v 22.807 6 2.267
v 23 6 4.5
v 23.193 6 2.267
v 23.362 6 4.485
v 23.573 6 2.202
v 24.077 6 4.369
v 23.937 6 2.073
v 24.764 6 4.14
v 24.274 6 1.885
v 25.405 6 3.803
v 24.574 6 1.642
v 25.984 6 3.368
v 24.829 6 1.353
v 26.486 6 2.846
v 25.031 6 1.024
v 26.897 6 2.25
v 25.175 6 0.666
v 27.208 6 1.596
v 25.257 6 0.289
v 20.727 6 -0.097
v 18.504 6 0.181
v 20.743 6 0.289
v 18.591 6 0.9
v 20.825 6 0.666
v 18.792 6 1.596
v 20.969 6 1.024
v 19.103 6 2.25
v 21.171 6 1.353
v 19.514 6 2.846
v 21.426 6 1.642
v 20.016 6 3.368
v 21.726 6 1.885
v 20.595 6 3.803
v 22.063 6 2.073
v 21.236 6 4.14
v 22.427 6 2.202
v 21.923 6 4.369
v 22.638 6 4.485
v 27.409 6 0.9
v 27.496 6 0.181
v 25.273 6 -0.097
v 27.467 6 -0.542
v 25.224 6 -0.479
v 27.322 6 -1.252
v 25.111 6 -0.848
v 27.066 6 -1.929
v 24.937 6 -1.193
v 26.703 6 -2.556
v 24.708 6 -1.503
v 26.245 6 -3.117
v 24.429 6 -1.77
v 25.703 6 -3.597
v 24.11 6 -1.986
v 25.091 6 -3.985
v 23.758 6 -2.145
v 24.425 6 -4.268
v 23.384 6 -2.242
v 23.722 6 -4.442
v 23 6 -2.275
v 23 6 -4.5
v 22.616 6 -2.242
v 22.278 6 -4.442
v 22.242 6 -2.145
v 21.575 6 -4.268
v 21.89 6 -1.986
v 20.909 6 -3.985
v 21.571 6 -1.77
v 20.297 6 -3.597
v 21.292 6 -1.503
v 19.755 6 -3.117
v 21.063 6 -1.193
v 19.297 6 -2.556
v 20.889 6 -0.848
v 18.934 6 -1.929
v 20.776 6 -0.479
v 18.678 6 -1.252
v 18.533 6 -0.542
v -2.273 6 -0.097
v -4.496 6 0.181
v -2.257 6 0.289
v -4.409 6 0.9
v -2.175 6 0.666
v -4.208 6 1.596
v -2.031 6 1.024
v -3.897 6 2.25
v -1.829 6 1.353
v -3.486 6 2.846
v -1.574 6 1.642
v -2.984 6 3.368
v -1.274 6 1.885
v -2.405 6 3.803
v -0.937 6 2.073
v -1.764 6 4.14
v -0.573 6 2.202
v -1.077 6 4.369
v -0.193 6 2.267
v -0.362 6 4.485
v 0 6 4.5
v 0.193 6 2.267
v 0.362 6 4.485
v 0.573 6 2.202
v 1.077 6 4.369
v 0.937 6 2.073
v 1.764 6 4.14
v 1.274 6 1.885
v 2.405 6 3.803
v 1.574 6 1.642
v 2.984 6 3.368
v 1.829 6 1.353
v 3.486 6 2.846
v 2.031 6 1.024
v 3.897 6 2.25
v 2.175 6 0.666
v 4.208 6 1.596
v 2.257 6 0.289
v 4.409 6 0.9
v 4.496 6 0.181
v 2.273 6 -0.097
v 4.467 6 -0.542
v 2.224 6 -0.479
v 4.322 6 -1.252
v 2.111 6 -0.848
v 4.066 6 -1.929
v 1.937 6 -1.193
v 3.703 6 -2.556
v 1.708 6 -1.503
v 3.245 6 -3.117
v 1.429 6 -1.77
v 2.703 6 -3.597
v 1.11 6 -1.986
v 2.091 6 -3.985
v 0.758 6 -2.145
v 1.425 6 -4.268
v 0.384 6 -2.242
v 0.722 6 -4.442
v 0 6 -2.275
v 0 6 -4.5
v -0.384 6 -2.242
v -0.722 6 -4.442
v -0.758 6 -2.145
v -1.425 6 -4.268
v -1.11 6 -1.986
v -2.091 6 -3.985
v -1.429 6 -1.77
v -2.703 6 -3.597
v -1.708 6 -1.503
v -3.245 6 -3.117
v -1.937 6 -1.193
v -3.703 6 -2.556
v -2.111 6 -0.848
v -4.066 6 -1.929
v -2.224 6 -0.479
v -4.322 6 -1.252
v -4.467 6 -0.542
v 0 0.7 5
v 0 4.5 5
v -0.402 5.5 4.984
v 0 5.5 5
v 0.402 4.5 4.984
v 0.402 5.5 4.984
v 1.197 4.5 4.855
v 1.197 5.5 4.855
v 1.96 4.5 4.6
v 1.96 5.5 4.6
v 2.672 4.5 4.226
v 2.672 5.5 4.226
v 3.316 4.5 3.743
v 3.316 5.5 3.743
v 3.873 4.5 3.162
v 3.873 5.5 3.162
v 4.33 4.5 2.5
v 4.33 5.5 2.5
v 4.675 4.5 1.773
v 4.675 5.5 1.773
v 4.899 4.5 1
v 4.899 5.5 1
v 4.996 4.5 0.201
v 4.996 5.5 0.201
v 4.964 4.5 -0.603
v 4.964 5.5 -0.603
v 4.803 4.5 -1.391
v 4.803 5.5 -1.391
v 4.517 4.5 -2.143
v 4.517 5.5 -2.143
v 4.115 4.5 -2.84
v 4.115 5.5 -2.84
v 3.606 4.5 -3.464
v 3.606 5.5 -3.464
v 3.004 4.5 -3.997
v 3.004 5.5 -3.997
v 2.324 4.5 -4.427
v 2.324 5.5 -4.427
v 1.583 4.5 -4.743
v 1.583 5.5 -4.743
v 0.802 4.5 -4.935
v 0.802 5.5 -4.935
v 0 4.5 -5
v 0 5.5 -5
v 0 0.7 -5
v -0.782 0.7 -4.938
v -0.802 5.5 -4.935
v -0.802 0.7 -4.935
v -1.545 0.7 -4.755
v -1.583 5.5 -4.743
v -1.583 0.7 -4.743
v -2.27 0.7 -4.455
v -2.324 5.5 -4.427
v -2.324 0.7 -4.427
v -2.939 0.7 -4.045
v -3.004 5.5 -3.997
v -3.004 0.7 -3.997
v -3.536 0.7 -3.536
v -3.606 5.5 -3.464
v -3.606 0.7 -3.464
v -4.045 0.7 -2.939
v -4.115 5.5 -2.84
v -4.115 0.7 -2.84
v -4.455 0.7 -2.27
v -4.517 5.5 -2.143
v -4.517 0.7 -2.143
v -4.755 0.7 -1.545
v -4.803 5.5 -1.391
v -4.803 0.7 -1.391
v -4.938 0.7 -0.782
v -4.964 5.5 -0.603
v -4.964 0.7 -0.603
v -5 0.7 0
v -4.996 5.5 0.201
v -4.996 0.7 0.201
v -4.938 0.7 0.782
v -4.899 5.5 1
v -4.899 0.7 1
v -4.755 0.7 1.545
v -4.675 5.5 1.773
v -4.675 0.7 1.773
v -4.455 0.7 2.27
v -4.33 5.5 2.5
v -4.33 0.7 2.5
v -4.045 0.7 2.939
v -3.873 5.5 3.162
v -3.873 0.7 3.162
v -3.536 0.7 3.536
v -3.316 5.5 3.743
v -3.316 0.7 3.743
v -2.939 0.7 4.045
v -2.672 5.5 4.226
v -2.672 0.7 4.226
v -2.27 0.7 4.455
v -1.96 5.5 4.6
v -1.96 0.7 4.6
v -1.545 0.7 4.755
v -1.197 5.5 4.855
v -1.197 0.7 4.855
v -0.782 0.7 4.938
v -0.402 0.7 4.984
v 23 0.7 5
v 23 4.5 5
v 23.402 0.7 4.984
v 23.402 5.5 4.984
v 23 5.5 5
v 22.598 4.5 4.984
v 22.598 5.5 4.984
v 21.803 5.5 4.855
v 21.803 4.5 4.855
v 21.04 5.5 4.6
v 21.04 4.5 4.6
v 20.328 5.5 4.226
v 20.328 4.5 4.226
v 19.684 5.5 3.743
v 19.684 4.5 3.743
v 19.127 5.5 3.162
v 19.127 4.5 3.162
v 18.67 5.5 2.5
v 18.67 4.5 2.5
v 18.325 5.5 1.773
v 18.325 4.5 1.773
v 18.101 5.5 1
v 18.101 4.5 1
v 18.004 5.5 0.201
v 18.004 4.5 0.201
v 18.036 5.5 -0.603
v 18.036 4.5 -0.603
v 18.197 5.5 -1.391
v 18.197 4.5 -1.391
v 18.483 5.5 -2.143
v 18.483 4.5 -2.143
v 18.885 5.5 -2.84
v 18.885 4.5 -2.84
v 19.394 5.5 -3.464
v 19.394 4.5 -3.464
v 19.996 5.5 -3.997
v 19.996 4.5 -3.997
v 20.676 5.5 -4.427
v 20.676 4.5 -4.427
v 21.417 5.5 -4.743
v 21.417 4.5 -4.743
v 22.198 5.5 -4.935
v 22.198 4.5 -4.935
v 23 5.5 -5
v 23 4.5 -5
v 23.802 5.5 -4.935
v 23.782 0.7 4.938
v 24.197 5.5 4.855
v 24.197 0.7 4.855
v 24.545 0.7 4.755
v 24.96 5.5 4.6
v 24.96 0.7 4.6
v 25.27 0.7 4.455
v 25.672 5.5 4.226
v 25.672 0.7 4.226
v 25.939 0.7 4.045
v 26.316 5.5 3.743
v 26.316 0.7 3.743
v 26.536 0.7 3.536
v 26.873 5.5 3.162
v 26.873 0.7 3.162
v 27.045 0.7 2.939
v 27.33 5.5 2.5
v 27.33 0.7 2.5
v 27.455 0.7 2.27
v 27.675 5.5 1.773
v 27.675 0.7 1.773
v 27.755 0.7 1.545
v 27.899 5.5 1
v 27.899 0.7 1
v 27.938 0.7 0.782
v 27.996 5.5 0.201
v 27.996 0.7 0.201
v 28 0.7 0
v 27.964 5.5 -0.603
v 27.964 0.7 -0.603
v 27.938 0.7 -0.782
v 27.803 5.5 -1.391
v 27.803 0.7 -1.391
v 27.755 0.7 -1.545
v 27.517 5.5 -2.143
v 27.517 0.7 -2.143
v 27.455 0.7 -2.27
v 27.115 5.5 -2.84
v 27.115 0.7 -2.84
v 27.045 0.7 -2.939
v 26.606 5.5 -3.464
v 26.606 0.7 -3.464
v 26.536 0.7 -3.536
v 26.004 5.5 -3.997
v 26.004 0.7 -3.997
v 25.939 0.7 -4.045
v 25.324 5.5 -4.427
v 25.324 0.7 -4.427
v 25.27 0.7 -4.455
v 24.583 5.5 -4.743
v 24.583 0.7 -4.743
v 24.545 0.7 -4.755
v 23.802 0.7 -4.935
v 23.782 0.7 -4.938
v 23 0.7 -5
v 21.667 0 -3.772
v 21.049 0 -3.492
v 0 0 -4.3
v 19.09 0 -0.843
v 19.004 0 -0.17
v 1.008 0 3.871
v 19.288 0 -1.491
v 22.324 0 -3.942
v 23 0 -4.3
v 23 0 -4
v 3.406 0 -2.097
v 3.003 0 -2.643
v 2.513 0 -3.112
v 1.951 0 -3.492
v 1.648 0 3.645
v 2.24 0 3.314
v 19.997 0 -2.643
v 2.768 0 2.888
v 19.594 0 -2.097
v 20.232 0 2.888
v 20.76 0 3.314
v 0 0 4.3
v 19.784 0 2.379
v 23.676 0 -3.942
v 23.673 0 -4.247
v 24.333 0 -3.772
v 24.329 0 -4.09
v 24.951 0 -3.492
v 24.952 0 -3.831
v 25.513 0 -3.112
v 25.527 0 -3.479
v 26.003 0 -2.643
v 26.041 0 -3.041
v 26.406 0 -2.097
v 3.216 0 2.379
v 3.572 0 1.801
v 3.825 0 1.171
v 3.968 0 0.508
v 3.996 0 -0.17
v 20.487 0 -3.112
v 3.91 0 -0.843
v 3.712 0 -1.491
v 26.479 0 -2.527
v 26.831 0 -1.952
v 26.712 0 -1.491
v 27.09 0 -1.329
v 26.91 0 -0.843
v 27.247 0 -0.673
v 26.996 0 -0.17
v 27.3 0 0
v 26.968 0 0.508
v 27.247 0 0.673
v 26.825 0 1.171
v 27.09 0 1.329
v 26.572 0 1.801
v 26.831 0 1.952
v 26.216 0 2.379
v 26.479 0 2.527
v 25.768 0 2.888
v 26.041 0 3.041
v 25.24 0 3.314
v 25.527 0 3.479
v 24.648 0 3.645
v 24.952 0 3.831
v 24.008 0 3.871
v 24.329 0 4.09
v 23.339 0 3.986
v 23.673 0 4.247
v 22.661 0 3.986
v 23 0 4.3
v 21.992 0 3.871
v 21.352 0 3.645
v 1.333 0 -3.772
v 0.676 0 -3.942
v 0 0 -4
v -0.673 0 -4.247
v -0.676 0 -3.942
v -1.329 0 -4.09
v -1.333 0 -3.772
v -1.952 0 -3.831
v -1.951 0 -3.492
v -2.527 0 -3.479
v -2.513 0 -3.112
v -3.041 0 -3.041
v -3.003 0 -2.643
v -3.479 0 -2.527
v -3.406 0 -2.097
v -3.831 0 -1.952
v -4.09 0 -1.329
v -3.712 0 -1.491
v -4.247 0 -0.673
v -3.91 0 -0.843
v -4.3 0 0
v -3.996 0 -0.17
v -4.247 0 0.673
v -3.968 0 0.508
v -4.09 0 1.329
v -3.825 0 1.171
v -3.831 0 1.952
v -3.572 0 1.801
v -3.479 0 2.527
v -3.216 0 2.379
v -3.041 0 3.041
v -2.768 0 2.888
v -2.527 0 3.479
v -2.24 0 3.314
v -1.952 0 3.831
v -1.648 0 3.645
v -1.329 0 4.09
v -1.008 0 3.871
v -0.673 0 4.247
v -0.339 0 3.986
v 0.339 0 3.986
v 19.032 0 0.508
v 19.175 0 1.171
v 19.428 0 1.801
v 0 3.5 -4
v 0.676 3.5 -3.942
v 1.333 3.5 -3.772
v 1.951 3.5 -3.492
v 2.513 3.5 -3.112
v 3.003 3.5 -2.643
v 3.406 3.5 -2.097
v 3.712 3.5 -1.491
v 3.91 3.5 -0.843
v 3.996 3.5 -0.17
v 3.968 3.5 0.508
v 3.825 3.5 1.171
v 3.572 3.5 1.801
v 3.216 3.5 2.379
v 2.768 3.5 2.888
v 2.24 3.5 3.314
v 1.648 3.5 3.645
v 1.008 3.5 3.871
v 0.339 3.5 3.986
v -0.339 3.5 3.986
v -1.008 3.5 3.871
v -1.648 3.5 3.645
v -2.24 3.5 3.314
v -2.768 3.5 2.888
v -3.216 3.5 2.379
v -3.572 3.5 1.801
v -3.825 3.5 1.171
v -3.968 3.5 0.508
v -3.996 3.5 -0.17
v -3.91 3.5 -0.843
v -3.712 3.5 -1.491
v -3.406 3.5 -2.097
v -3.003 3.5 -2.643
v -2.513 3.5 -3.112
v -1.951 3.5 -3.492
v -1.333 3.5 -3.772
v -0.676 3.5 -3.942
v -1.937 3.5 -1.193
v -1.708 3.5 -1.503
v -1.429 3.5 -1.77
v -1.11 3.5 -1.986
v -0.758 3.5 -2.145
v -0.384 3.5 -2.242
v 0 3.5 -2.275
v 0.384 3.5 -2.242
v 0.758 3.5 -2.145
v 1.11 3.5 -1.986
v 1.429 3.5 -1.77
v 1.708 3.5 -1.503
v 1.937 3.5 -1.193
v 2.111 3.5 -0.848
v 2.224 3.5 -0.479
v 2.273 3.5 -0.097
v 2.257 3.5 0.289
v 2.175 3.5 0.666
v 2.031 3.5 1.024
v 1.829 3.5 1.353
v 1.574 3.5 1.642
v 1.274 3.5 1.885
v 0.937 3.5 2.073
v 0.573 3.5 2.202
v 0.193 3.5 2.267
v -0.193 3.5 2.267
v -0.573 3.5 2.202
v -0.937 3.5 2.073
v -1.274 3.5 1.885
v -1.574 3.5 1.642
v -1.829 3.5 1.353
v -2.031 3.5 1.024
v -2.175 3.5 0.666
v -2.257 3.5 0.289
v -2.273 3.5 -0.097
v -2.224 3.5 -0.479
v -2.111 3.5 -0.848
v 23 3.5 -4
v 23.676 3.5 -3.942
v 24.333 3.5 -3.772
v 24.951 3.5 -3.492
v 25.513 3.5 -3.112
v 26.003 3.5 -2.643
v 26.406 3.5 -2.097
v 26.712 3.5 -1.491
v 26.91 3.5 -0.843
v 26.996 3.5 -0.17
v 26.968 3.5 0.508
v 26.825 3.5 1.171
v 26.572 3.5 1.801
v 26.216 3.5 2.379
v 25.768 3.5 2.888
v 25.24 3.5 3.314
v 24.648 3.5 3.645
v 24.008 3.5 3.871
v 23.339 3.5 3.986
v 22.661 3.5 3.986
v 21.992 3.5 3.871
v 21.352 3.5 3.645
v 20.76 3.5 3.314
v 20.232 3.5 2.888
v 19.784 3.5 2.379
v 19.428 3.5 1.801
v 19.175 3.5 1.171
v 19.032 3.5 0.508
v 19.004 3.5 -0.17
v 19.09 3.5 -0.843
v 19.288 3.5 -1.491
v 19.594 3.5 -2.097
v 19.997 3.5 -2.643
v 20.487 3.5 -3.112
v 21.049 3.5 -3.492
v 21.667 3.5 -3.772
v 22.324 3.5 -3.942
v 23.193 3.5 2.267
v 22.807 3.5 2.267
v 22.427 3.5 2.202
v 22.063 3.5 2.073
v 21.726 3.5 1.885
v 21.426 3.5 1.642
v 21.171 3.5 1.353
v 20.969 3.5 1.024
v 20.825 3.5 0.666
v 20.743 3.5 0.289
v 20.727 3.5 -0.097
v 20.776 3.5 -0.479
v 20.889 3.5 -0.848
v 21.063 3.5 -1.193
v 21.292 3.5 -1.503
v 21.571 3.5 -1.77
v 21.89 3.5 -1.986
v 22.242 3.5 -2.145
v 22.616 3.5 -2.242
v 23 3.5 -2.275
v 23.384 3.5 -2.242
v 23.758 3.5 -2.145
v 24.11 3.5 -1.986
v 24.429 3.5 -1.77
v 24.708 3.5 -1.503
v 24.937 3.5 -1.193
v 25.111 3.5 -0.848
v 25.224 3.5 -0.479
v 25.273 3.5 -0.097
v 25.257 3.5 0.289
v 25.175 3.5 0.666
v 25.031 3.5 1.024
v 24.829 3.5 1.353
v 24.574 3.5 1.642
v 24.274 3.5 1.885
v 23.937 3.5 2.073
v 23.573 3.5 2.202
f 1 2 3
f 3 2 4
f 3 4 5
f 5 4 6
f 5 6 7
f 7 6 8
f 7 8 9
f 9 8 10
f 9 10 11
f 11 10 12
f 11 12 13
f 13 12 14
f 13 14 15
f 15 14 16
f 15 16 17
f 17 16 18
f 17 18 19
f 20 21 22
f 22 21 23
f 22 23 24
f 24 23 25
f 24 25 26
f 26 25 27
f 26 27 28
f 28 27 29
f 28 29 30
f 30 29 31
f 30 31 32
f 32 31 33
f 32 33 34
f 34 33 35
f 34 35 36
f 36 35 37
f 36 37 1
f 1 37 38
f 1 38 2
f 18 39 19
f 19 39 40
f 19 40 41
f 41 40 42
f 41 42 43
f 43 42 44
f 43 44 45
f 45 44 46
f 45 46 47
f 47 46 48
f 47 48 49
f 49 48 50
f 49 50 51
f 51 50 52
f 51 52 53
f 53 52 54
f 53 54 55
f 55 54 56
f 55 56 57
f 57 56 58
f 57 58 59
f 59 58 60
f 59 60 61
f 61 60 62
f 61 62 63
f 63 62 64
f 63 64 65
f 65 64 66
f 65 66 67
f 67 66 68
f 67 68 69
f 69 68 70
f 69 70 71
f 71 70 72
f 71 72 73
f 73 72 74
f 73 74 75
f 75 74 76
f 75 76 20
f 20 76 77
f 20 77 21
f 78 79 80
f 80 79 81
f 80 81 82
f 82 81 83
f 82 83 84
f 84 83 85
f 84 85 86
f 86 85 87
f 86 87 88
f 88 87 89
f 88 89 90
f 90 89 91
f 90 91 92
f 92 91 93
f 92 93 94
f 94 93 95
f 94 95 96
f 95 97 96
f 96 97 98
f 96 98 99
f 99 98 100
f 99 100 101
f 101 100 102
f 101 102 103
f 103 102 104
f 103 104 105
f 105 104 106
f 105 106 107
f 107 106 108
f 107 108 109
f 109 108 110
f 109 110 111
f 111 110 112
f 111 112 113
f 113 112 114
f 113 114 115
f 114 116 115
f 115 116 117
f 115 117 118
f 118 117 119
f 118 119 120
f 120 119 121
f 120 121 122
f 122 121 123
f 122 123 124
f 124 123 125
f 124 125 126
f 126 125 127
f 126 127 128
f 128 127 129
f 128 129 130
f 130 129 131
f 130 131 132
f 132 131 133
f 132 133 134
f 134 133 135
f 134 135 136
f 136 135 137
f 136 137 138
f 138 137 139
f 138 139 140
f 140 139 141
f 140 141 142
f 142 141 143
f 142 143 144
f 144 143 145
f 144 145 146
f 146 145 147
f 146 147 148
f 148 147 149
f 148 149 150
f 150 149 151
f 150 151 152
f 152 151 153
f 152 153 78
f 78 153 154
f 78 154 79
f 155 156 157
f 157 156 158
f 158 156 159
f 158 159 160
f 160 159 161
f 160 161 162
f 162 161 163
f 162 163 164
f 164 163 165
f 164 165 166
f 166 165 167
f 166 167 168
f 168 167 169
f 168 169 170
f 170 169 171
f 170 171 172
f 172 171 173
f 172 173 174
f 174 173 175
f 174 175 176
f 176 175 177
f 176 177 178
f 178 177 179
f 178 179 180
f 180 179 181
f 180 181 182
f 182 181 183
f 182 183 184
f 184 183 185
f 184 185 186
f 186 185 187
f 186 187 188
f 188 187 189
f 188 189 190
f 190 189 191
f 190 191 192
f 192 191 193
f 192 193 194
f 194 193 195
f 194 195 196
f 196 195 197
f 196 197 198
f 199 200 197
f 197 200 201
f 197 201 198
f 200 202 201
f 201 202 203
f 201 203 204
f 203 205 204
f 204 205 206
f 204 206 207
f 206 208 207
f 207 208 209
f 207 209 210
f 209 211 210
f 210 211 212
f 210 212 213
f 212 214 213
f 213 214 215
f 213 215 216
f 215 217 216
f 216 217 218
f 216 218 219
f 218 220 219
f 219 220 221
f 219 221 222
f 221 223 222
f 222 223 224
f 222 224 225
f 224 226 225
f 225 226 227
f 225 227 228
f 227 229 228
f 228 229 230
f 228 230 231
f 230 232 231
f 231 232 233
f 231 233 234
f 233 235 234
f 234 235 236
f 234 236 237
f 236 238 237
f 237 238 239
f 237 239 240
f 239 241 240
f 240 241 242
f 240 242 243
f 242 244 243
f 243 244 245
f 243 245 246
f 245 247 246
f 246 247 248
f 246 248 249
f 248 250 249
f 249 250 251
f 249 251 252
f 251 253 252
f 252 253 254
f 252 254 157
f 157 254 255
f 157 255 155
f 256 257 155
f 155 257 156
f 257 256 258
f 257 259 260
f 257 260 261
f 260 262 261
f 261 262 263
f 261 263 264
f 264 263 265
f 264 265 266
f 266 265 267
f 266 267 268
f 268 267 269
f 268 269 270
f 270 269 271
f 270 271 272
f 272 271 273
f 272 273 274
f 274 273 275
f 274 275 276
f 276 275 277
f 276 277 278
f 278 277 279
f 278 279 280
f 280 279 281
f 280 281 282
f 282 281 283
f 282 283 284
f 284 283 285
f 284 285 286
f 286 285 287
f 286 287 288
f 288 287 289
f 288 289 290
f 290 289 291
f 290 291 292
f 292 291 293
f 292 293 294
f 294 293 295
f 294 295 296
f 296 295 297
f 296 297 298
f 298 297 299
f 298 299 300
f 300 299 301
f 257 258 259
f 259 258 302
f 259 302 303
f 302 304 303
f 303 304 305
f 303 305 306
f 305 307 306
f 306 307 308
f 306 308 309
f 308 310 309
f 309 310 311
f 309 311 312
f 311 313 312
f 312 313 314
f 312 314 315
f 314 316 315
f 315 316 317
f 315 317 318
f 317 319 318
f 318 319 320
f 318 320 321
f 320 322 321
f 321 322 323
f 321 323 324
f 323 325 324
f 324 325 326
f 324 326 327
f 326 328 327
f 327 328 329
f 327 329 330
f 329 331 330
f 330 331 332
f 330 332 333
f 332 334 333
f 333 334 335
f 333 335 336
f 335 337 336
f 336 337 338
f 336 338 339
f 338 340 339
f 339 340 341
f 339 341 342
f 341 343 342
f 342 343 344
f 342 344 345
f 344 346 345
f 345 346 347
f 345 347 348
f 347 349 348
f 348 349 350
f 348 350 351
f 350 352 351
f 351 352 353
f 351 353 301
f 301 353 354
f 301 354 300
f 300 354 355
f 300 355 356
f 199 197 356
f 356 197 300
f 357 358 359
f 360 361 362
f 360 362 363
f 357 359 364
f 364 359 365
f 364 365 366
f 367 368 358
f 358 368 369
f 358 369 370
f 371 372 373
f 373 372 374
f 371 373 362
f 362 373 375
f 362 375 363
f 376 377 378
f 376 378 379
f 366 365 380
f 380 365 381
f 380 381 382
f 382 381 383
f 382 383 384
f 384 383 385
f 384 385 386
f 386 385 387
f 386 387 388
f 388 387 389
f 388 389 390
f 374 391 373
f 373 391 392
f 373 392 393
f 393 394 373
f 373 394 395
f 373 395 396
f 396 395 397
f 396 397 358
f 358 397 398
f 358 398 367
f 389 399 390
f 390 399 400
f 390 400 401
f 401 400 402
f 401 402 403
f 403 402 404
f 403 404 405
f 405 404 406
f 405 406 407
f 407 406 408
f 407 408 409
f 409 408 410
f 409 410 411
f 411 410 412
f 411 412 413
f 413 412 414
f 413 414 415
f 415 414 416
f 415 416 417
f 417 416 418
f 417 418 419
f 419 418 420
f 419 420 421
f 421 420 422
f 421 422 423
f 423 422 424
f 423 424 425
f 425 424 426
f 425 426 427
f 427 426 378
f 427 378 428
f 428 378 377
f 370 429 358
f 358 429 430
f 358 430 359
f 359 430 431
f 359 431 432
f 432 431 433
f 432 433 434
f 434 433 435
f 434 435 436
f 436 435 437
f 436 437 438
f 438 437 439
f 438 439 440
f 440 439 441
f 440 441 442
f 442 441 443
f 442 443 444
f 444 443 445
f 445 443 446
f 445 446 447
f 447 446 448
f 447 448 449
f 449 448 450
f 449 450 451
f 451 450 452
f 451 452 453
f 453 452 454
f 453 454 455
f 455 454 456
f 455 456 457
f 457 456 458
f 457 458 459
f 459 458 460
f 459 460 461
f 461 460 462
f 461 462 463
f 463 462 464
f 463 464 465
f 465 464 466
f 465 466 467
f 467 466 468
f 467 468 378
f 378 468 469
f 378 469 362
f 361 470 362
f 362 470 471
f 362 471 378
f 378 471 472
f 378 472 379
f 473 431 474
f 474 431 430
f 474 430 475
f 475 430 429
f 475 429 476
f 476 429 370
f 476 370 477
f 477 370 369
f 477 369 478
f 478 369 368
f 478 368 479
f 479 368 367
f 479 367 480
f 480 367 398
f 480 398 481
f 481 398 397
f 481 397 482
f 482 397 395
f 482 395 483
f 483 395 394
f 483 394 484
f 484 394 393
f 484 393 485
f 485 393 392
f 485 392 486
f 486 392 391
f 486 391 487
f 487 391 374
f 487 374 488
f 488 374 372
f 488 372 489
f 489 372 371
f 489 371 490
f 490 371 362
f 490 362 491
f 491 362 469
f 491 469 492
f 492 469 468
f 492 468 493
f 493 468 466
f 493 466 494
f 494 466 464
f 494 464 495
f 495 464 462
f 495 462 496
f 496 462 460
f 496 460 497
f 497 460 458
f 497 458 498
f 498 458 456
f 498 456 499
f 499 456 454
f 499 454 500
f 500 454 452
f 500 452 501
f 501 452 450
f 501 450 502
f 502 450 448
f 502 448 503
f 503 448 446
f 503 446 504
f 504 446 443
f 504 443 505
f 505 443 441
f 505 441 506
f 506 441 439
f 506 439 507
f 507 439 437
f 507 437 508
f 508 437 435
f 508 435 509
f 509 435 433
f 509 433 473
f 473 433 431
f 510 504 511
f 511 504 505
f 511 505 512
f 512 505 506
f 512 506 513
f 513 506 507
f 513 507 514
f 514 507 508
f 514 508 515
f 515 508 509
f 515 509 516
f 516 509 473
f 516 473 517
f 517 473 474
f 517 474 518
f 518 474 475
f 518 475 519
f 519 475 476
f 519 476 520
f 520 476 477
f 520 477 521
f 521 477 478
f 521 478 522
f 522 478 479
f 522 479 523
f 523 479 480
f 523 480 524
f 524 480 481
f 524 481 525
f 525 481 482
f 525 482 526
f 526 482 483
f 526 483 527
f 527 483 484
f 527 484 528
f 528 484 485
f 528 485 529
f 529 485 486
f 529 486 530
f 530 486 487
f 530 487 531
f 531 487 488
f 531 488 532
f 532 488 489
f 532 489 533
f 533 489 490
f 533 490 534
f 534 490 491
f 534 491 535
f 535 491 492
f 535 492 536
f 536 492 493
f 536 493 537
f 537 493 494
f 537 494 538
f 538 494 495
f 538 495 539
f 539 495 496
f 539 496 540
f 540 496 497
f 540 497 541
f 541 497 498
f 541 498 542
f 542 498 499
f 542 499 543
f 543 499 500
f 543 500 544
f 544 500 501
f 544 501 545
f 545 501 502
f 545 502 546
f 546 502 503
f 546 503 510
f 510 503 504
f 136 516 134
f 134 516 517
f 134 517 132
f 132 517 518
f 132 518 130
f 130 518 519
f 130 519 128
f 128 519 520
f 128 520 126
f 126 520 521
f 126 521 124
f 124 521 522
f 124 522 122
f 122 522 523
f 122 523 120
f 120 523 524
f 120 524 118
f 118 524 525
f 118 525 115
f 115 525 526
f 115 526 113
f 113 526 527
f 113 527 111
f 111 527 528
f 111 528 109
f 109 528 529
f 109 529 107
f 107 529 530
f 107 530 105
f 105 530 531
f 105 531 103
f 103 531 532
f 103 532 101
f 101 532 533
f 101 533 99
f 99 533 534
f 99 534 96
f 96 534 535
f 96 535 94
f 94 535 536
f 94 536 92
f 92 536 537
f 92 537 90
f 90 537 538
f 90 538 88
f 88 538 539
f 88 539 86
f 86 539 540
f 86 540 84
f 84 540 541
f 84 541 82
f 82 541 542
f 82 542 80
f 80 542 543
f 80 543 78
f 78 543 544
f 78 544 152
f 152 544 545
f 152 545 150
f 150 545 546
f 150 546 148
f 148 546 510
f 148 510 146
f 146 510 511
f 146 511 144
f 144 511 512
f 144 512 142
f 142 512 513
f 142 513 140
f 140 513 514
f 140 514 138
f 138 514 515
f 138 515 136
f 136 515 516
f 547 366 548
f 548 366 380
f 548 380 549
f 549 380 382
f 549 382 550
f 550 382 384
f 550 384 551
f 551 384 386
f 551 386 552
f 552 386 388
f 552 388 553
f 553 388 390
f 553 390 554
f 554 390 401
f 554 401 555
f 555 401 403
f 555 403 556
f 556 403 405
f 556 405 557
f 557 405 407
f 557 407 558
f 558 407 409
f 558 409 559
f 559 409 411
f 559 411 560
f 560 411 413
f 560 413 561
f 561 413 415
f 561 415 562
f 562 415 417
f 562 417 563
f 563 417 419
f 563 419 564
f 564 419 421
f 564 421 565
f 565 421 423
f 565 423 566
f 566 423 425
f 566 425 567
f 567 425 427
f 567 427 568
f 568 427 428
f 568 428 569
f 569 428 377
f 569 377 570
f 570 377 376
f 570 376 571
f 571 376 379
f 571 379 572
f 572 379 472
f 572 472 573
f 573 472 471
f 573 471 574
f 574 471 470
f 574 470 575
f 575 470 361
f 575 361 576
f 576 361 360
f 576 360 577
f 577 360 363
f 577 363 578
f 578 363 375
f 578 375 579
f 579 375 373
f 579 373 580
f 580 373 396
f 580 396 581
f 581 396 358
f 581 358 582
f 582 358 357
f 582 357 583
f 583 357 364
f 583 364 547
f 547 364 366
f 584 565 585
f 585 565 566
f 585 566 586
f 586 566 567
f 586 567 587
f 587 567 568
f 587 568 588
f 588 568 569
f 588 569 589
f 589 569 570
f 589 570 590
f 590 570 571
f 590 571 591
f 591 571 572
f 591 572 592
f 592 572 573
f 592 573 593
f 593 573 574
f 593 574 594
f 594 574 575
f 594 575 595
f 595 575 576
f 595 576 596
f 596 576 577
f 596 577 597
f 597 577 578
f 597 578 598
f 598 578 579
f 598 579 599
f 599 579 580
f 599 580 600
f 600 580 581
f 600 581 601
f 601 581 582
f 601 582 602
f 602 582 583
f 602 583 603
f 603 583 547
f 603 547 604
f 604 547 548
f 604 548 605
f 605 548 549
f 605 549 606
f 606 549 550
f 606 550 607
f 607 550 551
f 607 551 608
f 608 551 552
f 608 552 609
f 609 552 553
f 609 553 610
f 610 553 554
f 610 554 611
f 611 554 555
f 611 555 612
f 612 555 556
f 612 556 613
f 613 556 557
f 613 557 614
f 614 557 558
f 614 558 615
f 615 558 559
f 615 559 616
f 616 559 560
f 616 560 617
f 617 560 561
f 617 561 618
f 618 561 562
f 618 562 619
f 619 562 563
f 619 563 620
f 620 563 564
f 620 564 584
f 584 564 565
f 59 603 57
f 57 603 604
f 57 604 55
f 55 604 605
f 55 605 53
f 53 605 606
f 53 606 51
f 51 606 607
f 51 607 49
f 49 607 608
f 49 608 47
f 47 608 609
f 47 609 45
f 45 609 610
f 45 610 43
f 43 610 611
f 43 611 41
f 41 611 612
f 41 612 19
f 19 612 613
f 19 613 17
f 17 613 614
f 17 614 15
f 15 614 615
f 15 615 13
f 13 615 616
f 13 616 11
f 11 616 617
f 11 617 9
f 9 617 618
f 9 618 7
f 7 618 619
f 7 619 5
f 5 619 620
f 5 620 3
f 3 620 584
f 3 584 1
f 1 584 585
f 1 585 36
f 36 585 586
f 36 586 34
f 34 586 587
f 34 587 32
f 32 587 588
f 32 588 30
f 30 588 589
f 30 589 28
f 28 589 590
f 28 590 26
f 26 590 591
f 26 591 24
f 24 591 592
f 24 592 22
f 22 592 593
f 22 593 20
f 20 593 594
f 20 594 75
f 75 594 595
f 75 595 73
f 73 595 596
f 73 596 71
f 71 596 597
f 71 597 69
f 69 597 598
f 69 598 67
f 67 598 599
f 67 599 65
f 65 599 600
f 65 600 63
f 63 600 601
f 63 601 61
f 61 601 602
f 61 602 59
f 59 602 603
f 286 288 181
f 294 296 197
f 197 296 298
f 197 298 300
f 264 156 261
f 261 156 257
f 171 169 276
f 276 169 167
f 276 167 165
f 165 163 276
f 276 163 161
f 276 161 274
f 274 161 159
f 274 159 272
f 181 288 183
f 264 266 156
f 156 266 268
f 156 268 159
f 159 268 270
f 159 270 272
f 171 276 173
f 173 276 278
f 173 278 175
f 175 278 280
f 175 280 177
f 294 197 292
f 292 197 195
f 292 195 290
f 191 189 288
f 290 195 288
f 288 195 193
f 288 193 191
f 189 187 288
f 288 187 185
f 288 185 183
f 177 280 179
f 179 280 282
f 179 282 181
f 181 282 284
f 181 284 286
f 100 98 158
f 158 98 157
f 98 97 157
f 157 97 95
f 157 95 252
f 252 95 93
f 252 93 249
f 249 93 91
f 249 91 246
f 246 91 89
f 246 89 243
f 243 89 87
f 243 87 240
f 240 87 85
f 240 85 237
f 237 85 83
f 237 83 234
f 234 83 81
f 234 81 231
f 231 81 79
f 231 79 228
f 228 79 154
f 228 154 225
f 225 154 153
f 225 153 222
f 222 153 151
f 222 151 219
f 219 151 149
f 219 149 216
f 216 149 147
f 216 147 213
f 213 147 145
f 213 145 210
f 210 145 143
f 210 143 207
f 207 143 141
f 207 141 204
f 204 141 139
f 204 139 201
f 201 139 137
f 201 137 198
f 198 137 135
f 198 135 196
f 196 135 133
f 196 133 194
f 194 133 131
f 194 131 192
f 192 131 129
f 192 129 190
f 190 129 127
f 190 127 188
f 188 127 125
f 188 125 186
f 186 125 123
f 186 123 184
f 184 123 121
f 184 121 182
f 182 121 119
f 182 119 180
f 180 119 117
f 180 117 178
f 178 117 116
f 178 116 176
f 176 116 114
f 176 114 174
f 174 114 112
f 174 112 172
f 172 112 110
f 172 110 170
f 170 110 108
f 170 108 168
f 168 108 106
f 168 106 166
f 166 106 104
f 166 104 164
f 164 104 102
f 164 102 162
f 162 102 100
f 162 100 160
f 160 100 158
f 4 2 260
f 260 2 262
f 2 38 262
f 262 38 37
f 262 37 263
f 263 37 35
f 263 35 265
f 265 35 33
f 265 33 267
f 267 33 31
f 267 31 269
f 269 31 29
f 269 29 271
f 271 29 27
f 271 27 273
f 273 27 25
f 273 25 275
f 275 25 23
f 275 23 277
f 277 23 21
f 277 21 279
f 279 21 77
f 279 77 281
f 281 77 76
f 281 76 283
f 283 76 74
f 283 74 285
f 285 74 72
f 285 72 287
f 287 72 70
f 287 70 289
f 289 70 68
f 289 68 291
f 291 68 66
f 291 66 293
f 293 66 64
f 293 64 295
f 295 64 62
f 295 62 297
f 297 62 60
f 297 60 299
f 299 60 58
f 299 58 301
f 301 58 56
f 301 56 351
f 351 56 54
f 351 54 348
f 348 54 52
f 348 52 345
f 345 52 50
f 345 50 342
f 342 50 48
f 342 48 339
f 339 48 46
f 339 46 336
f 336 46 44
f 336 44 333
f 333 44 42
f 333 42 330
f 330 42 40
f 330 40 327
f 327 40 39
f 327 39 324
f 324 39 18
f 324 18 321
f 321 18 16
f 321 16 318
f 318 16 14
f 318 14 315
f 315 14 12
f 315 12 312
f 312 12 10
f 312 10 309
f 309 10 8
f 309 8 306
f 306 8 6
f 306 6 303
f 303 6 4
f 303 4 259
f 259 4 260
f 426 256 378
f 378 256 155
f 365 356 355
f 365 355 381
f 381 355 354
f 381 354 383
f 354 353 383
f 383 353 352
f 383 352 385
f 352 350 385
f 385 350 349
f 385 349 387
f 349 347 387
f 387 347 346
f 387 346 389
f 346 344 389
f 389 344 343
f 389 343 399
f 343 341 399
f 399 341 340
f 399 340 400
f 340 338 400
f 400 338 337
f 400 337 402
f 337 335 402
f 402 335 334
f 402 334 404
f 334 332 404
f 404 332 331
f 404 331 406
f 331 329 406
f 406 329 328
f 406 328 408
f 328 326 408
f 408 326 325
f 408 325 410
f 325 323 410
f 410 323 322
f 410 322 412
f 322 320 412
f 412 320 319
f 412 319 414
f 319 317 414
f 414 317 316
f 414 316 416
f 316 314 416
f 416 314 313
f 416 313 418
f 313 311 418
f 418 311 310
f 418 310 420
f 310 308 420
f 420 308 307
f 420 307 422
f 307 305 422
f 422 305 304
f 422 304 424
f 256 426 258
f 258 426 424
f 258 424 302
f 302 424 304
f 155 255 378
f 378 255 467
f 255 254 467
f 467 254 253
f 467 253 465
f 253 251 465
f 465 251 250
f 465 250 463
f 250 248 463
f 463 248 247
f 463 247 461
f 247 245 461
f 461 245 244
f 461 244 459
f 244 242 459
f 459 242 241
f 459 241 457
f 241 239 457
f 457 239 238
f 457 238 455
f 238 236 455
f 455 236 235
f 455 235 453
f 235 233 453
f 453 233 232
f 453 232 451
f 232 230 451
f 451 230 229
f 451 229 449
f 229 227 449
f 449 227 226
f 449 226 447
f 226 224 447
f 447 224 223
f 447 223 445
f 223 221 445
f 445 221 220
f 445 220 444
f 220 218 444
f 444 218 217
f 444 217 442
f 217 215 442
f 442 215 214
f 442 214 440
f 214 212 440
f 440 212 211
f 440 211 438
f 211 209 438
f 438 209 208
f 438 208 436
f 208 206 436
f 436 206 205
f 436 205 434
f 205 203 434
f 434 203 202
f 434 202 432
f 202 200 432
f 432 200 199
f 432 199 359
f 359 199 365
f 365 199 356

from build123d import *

# Parameters (mm, degrees)
EXTRUDE_1_DEPTH     = 6
CUT_EXTRUDE_START   = -1.5
SKETCH_4_W          = 74.791186833
SKETCH_4_H          = 47.147225829
SKETCH_4_R          = 5
CUT_EXTRUDE_1_DEPTH = 1.5
CHAMFER_1_SIZE      = 0.5
CHAMFER_2_SIZE      = 0.7


with BuildPart() as part:
    # 草图1 → 凸台-拉伸1 (new body)
    with BuildSketch(Plane(origin=(0, 0, 0), x_dir=(1, 0, 0), z_dir=(0, 1, 0))):
        with BuildLine():
            Line((0, 5), (23, 5))
            ThreePointArc((23, 5), (28, 0), (23, -5))
            Line((23, -5), (0, -5))
            ThreePointArc((0, -5), (-5, 0), (0, 5))
        make_face()
    extrude(amount=EXTRUDE_1_DEPTH)

    # 草图2 → 切除-旋转1 (revolve, cut)
    with BuildSketch(Plane.XY, mode=Mode.PRIVATE) as cut_revolve_1_sk:
        Polygon((-4, 0), (-4, 3.5), (-2.275, 3.5), (-2.275, 6), (0, 6), (0, 0), align=None)
    revolve(cut_revolve_1_sk.sketch.rotate(Axis((0, 0, 0), (0, 1, 0)), 270), axis=Axis((0, 0, 0), (0, 1, 0)), mode=Mode.SUBTRACT)

    # 草图3 → 切除-旋转2 (revolve, cut)
    with BuildSketch(Plane.XY, mode=Mode.PRIVATE) as cut_revolve_2_sk:
        Polygon((23, 0), (19, 0), (19, 3.5), (20.725, 3.5), (20.725, 6), (23, 6), align=None)
    revolve(cut_revolve_2_sk.sketch.rotate(Axis((23, 0, 0), (0, 1, 0)), 270), axis=Axis((23, 0, 0), (0, 1, 0)), mode=Mode.SUBTRACT)

    # 草图4 → 切除-拉伸1 (cut)
    with BuildSketch(Plane(origin=(0, 6, 0), x_dir=(1, 0, 0), z_dir=(0, 1, 0)).offset(CUT_EXTRUDE_START)):
        with Locations((14.679246855, 1.415799858)):
            Rectangle(SKETCH_4_W, SKETCH_4_H)
        with Locations(Location((23, 0, 0), (0, 0, 270))):
            Circle(SKETCH_4_R, mode=Mode.SUBTRACT)
        with Locations(Location((0, 0, 0), (0, 0, 270))):
            Circle(SKETCH_4_R, mode=Mode.SUBTRACT)
    extrude(amount=CUT_EXTRUDE_1_DEPTH, mode=Mode.SUBTRACT)

    # 倒角1
    chamfer_1_edges = [part.edges().sort_by_distance(p)[0] for p in [
        (23, 6, 5),
        (0, 6, -5),
    ]]
    chamfer(chamfer_1_edges, length=CHAMFER_1_SIZE)

    # 倒角2
    chamfer_2_edges = [part.edges().sort_by_distance(p)[0] for p in [
        (11.5, 0, -5),
        (28, 0, 0),
        (11.5, 0, 5),
        (-5, 0, 0),
    ]]
    chamfer(chamfer_2_edges, length=CHAMFER_2_SIZE)


solid = part.part
